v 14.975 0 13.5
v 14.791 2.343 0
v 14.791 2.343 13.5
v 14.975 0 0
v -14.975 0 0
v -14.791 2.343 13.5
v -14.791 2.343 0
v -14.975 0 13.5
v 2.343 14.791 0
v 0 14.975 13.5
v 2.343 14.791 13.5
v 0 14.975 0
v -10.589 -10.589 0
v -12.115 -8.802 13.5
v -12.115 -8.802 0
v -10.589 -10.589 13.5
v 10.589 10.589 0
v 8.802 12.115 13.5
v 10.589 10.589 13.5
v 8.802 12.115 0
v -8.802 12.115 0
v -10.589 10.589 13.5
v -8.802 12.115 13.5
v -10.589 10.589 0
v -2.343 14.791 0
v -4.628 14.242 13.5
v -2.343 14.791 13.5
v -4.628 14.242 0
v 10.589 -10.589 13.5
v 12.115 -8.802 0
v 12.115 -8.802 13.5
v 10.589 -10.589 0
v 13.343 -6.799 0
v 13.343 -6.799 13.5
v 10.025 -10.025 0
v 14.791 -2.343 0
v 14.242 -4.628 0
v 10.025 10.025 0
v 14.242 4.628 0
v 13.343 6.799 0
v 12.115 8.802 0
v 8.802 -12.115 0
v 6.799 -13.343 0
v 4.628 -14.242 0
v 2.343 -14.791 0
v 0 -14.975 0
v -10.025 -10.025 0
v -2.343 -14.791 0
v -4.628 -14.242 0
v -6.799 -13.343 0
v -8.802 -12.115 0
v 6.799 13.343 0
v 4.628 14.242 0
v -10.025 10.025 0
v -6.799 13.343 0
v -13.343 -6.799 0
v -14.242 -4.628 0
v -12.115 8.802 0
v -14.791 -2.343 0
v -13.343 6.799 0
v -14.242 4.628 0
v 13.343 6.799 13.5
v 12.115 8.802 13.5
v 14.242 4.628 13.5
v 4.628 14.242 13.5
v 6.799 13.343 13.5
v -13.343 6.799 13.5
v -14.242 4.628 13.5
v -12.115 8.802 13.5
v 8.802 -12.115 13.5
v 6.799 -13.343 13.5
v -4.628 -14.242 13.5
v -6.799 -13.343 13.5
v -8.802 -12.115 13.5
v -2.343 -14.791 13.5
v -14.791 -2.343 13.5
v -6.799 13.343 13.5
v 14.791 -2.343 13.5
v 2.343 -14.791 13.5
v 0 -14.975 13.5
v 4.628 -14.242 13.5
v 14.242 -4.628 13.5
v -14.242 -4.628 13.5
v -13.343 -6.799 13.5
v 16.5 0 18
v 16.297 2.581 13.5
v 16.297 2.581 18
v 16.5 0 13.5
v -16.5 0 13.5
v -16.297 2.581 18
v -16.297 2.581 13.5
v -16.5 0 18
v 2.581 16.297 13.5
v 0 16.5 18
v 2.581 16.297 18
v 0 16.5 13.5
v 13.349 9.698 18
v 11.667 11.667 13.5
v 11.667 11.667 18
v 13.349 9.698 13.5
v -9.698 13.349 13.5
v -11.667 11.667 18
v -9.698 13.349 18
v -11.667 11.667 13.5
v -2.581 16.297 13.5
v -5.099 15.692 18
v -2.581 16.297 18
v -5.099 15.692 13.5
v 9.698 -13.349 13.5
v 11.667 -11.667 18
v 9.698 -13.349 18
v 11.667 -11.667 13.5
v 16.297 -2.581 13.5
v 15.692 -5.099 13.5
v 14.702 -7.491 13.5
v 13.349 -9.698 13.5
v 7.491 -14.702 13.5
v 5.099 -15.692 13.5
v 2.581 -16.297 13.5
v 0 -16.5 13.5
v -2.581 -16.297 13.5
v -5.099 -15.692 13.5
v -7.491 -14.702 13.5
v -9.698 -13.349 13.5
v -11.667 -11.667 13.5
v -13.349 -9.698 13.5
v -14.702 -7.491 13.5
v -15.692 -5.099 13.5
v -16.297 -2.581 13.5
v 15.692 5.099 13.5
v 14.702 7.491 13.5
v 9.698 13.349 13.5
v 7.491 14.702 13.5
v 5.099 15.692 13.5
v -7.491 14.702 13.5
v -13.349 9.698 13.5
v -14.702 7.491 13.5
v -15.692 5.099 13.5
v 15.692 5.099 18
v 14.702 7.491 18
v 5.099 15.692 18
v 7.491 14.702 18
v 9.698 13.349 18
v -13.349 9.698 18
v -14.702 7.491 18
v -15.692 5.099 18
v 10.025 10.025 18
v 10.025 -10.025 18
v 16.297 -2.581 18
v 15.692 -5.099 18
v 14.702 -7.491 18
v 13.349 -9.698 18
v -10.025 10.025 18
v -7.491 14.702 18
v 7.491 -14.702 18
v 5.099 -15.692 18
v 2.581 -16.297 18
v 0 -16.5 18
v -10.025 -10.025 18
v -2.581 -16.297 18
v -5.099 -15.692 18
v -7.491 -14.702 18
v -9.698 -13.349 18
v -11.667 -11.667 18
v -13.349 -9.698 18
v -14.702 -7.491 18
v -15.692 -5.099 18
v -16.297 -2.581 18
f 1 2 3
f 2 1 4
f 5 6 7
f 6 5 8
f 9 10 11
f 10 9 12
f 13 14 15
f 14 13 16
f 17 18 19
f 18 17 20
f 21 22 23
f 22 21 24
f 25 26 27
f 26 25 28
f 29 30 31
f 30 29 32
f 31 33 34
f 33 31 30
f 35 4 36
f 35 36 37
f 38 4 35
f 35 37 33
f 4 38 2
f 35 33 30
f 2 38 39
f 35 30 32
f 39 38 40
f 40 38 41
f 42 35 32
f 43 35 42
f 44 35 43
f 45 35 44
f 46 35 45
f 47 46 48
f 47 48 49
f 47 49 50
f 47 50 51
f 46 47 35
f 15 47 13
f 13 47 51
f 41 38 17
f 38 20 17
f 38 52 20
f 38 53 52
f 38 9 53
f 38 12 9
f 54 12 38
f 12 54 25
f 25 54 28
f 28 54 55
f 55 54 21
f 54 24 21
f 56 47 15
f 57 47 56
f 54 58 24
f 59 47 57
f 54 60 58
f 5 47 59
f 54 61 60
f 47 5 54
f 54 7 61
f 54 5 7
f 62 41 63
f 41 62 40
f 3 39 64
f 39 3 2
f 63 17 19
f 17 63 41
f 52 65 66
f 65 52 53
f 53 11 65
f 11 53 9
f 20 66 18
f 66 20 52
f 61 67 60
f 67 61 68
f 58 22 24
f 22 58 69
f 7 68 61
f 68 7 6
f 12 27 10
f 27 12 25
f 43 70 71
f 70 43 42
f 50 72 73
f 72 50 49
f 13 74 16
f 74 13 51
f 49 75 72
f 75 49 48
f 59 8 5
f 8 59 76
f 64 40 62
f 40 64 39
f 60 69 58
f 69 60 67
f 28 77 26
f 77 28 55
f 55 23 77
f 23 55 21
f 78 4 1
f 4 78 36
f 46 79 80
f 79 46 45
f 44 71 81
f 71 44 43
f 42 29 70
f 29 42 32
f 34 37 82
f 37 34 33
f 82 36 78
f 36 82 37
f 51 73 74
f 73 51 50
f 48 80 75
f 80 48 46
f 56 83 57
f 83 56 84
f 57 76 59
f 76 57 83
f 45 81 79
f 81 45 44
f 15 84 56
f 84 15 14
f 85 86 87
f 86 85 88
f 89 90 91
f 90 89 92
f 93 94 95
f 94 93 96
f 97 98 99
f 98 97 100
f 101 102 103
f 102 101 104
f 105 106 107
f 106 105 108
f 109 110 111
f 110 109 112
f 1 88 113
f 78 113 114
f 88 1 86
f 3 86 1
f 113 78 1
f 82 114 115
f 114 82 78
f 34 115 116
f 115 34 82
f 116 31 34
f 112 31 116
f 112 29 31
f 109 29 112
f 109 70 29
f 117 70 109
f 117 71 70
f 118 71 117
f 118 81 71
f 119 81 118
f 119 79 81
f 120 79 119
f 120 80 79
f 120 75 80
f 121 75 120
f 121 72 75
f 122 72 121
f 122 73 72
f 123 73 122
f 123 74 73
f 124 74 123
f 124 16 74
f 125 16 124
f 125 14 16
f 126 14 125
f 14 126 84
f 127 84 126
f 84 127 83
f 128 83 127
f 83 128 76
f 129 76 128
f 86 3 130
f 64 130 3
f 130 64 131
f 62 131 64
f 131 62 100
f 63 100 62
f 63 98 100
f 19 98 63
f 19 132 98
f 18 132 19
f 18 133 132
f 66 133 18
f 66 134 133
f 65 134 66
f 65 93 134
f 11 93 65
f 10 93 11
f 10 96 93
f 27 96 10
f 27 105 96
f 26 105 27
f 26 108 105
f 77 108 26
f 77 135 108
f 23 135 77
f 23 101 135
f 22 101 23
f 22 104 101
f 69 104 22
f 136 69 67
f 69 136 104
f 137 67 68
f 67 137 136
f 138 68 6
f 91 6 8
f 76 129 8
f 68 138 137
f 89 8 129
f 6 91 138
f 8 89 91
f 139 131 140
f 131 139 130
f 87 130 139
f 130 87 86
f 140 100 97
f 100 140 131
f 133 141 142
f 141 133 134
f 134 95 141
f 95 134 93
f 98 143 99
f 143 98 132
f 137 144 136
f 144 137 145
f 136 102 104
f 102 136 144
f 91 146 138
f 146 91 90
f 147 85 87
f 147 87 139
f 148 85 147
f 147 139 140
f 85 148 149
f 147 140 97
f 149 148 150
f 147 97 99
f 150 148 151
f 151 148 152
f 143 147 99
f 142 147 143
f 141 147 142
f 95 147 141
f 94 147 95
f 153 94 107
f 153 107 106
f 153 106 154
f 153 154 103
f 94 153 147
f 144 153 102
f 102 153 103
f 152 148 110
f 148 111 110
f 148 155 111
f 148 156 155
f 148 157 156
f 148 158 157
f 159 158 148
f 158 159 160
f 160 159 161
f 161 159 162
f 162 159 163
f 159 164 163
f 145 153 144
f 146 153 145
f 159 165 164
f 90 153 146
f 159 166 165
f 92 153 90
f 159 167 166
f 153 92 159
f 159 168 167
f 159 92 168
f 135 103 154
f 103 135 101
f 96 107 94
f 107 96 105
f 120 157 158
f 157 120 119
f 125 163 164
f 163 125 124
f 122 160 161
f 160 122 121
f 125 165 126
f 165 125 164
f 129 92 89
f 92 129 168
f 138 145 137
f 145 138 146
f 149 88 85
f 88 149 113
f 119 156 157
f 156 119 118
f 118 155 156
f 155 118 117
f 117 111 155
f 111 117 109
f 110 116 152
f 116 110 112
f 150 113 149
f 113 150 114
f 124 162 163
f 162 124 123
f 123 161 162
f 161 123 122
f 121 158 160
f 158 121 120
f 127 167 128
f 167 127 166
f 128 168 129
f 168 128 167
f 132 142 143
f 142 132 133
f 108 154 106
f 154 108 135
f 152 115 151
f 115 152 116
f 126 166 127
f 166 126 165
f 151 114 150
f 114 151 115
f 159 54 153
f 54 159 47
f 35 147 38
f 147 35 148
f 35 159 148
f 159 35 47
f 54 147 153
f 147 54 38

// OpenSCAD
difference(){
   union(){
   translate([0,0,0])cylinder(r=29.95/2, h=15, $fn=40);
   translate([0,0,13.5])cylinder(r=33/2, h=15-13.5+3, $fn=40);
       
   }
 translate([-20.05/2,-20.05/2,-1])cube([20.05,20.05,42]);   
}
